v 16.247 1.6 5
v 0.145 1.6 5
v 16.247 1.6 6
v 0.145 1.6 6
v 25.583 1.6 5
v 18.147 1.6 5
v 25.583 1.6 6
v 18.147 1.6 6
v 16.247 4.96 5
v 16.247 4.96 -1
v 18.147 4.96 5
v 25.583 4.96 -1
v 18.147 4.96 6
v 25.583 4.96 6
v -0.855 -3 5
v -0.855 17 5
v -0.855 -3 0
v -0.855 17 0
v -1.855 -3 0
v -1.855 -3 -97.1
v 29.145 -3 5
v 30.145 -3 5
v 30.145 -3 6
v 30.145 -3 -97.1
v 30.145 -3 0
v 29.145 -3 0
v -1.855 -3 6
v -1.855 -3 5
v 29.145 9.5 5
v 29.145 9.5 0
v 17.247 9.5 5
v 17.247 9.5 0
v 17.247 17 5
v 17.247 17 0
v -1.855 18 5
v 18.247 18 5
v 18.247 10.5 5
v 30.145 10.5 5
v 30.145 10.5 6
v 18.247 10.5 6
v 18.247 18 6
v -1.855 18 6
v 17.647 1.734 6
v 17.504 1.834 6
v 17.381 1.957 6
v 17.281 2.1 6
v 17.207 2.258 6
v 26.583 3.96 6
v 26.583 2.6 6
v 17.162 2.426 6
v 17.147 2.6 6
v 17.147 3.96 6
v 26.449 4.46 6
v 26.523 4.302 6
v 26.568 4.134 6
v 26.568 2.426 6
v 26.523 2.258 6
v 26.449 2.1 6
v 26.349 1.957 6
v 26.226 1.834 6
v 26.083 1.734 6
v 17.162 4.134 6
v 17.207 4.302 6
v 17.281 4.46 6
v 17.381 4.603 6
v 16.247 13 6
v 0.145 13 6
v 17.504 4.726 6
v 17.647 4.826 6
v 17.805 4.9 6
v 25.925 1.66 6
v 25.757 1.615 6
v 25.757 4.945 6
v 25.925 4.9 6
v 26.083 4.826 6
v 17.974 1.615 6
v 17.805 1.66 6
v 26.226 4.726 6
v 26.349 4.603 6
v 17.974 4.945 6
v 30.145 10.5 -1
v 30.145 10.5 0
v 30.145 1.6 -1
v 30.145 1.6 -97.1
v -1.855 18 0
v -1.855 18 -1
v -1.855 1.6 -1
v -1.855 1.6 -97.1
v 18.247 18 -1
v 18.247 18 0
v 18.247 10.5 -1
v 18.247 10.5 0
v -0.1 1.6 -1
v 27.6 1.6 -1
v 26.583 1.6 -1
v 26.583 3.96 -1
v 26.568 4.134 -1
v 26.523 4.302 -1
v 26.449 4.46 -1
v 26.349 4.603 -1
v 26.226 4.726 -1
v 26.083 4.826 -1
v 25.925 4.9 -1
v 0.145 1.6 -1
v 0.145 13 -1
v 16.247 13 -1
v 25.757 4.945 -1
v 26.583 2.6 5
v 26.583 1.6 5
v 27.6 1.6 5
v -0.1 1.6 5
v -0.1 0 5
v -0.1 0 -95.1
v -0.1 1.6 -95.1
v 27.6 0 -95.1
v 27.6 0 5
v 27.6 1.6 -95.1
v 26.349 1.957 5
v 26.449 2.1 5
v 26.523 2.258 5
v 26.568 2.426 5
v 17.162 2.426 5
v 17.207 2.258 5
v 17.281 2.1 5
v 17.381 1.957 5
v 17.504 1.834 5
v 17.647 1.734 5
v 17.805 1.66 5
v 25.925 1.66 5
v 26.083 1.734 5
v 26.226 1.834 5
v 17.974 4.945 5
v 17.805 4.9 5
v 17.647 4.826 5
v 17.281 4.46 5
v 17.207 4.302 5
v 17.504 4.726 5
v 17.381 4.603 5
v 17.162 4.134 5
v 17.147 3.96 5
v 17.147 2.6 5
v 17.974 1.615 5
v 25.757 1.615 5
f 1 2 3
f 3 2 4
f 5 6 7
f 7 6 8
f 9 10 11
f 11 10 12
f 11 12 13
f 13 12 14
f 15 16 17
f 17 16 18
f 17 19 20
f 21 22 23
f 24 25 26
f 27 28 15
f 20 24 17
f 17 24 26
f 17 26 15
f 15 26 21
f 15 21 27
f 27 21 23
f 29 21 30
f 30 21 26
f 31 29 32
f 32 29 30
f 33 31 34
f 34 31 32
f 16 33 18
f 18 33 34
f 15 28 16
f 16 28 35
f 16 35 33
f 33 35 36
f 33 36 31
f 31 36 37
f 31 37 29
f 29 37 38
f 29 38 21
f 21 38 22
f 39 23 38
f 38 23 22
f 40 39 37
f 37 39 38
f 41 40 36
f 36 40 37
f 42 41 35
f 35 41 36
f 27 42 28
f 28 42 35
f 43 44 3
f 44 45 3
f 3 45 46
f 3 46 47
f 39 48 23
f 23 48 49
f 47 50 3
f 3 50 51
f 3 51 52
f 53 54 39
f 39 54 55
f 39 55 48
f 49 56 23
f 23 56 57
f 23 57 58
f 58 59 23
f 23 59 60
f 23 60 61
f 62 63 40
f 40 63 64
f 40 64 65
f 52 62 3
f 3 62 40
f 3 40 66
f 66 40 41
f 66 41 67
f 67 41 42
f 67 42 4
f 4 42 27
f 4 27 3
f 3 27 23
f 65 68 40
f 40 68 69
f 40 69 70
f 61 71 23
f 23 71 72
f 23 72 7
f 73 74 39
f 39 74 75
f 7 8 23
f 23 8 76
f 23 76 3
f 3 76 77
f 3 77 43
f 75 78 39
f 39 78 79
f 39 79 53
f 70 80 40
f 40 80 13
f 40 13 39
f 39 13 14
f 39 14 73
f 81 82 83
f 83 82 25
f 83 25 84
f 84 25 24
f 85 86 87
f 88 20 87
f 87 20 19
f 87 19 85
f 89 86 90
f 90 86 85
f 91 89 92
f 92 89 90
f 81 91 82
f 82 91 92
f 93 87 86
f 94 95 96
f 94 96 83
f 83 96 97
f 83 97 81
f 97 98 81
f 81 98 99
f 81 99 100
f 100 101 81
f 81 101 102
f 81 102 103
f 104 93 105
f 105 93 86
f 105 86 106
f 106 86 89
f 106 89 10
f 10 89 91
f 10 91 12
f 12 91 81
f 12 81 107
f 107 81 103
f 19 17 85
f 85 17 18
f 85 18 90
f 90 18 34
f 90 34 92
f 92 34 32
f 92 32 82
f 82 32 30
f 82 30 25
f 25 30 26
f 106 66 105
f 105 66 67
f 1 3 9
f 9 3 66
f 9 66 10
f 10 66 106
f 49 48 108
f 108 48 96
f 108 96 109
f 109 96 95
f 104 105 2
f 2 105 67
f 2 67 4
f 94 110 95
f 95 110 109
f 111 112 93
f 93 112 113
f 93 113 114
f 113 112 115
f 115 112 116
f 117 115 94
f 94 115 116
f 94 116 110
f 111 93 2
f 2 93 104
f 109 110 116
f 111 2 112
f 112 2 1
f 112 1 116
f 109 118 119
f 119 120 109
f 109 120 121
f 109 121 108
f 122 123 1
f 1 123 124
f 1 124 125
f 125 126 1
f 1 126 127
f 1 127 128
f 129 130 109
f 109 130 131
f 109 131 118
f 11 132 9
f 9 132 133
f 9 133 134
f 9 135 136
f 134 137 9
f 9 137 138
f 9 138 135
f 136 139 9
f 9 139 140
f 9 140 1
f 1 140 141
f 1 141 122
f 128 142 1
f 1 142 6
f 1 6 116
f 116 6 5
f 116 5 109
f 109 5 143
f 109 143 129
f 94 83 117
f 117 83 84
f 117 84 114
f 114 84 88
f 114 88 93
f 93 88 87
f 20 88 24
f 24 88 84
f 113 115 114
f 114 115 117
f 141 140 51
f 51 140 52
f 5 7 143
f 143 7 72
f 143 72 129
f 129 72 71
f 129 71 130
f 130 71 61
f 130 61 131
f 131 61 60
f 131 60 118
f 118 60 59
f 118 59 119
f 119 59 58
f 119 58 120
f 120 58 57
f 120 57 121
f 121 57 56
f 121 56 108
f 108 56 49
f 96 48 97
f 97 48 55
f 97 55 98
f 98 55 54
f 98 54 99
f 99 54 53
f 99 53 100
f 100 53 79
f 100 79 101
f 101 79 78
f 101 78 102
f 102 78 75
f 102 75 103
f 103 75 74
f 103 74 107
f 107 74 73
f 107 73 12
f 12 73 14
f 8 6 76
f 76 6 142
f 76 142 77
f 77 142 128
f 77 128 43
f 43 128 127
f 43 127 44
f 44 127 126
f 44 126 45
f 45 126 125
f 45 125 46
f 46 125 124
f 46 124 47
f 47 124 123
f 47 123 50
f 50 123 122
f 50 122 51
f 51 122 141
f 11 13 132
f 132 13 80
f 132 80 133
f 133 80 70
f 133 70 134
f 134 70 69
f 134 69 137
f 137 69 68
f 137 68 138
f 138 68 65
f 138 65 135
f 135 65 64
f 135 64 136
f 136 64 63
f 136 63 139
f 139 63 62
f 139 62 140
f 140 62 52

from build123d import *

# Parameters (mm, degrees)
EXTRUDE_2_DEPTH     = 5
EXTRUDE_3_DEPTH     = 1
EXTRUDE_4_DEPTH     = 1
CUT_EXTRUDE_1_DEPTH = 36.801015056
SKETCH_14_W         = 27.70005588
SKETCH_14_H         = 1.6
CUT_EXTRUDE_2_DEPTH = 6
EXTRUDE_7_DEPTH     = 94.1
SKETCH_16_W         = 32
SKETCH_16_H         = 4.6
EXTRUDE_8_DEPTH     = 2
SKETCH_18_W         = 0.9
SKETCH_18_H         = 1
EXTRUDE_10_DEPTH    = 3.36
FILLET_2_R          = 1


with BuildPart() as part:
    # 草图10 → 凸台-拉伸2 (new body)
    with BuildSketch(Plane.XY):
        Polygon((-0.85513843, -3), (29.14486157, -3), (29.14486157, 9.5), (17.247172974, 9.5), (17.247172974, 17), (-0.85513843, 17), align=None)
        Polygon((0.14486157, 1.6), (0.14486157, 13), (16.247172974, 13), (16.247172974, 4.96), (26.583063246, 4.96), (26.583063246, 1.6), align=None, mode=Mode.SUBTRACT)
    extrude(amount=EXTRUDE_2_DEPTH)

    # 草图11 → 凸台-拉伸3 (add)
    with BuildSketch(Plane.XY.offset(5)):
        Polygon((-1.85513843, -3), (30.14486157, -3), (30.14486157, 10.5), (18.247172974, 10.5), (18.247172974, 18), (-1.85513843, 18), align=None)
    extrude(amount=EXTRUDE_3_DEPTH)

    # 草图12 → 凸台-拉伸4 (add)
    with BuildSketch(Plane(origin=(0, 0, 0), x_dir=(-1, 0, 0), z_dir=(0, 0, -1))):
        Polygon((0.85513843, -3), (1.85513843, -3), (1.85513843, 18), (-18.247172974, 18), (-18.247172974, 10.5), (-30.14486157, 10.5), (-30.14486157, -3), (-29.14486157, -3), align=None)
    extrude(amount=EXTRUDE_4_DEPTH)

    # 草图13 → 切除-拉伸1 (cut, through all)
    with BuildSketch(Plane.XY.offset(6)):
        Polygon((16.247172974, 4.96), (16.247172974, 13), (0.14486157, 13), (0.14486157, 1.6), (26.583063246, 1.6), (26.583063246, 4.96), align=None)
    extrude(amount=-CUT_EXTRUDE_1_DEPTH, mode=Mode.SUBTRACT)

    # 草图14 → 切除-拉伸2 (cut)
    with BuildSketch(Plane(origin=(0, 0, -1), x_dir=(-1, 0, 0), z_dir=(0, 0, -1))):
        with Locations((-13.75002794, 0.8)):
            Rectangle(SKETCH_14_W, SKETCH_14_H)
    extrude(amount=-CUT_EXTRUDE_2_DEPTH, mode=Mode.SUBTRACT)

    # 草图15 → 凸台-拉伸7 (add)
    with BuildSketch(Plane(origin=(0, 0, -1), x_dir=(-1, 0, 0), z_dir=(0, 0, -1))):
        Polygon((-30.14486157, -3), (1.85513843, -3), (1.85513843, 1.6), (0.1, 1.6), (0.1, 0), (-27.60005588, 0), (-27.60005588, 1.6), (-30.14486157, 1.6), align=None)
    extrude(amount=EXTRUDE_7_DEPTH)

    # 草图16 → 凸台-拉伸8 (add)
    with BuildSketch(Plane(origin=(0, 0, -95.1), x_dir=(-1, 0, 0), z_dir=(0, 0, -1))):
        with Locations((-14.14486157, -0.7)):
            Rectangle(SKETCH_16_W, SKETCH_16_H)
    extrude(amount=EXTRUDE_8_DEPTH)

    # 草图18 → 凸台-拉伸10 (add)
    with BuildSketch(Plane(origin=(0, 1.6, 0), x_dir=(1, 0, 0), z_dir=(0, 1, 0))):
        with Locations((16.697172974, -5.5)):
            Rectangle(SKETCH_18_W, SKETCH_18_H)
    extrude(amount=EXTRUDE_10_DEPTH)

    # 圆角2
    fillet_2_edges = [part.edges().sort_by_distance(p)[0] for p in [
        (17.147172974, 4.96, 5.5),
        (17.147172974, 1.6, 5.5),
        (26.583063246, 1.6, 5.5),
        (26.583063246, 4.96, 2.5),
    ]]
    fillet(fillet_2_edges, radius=FILLET_2_R)


solid = part.part
